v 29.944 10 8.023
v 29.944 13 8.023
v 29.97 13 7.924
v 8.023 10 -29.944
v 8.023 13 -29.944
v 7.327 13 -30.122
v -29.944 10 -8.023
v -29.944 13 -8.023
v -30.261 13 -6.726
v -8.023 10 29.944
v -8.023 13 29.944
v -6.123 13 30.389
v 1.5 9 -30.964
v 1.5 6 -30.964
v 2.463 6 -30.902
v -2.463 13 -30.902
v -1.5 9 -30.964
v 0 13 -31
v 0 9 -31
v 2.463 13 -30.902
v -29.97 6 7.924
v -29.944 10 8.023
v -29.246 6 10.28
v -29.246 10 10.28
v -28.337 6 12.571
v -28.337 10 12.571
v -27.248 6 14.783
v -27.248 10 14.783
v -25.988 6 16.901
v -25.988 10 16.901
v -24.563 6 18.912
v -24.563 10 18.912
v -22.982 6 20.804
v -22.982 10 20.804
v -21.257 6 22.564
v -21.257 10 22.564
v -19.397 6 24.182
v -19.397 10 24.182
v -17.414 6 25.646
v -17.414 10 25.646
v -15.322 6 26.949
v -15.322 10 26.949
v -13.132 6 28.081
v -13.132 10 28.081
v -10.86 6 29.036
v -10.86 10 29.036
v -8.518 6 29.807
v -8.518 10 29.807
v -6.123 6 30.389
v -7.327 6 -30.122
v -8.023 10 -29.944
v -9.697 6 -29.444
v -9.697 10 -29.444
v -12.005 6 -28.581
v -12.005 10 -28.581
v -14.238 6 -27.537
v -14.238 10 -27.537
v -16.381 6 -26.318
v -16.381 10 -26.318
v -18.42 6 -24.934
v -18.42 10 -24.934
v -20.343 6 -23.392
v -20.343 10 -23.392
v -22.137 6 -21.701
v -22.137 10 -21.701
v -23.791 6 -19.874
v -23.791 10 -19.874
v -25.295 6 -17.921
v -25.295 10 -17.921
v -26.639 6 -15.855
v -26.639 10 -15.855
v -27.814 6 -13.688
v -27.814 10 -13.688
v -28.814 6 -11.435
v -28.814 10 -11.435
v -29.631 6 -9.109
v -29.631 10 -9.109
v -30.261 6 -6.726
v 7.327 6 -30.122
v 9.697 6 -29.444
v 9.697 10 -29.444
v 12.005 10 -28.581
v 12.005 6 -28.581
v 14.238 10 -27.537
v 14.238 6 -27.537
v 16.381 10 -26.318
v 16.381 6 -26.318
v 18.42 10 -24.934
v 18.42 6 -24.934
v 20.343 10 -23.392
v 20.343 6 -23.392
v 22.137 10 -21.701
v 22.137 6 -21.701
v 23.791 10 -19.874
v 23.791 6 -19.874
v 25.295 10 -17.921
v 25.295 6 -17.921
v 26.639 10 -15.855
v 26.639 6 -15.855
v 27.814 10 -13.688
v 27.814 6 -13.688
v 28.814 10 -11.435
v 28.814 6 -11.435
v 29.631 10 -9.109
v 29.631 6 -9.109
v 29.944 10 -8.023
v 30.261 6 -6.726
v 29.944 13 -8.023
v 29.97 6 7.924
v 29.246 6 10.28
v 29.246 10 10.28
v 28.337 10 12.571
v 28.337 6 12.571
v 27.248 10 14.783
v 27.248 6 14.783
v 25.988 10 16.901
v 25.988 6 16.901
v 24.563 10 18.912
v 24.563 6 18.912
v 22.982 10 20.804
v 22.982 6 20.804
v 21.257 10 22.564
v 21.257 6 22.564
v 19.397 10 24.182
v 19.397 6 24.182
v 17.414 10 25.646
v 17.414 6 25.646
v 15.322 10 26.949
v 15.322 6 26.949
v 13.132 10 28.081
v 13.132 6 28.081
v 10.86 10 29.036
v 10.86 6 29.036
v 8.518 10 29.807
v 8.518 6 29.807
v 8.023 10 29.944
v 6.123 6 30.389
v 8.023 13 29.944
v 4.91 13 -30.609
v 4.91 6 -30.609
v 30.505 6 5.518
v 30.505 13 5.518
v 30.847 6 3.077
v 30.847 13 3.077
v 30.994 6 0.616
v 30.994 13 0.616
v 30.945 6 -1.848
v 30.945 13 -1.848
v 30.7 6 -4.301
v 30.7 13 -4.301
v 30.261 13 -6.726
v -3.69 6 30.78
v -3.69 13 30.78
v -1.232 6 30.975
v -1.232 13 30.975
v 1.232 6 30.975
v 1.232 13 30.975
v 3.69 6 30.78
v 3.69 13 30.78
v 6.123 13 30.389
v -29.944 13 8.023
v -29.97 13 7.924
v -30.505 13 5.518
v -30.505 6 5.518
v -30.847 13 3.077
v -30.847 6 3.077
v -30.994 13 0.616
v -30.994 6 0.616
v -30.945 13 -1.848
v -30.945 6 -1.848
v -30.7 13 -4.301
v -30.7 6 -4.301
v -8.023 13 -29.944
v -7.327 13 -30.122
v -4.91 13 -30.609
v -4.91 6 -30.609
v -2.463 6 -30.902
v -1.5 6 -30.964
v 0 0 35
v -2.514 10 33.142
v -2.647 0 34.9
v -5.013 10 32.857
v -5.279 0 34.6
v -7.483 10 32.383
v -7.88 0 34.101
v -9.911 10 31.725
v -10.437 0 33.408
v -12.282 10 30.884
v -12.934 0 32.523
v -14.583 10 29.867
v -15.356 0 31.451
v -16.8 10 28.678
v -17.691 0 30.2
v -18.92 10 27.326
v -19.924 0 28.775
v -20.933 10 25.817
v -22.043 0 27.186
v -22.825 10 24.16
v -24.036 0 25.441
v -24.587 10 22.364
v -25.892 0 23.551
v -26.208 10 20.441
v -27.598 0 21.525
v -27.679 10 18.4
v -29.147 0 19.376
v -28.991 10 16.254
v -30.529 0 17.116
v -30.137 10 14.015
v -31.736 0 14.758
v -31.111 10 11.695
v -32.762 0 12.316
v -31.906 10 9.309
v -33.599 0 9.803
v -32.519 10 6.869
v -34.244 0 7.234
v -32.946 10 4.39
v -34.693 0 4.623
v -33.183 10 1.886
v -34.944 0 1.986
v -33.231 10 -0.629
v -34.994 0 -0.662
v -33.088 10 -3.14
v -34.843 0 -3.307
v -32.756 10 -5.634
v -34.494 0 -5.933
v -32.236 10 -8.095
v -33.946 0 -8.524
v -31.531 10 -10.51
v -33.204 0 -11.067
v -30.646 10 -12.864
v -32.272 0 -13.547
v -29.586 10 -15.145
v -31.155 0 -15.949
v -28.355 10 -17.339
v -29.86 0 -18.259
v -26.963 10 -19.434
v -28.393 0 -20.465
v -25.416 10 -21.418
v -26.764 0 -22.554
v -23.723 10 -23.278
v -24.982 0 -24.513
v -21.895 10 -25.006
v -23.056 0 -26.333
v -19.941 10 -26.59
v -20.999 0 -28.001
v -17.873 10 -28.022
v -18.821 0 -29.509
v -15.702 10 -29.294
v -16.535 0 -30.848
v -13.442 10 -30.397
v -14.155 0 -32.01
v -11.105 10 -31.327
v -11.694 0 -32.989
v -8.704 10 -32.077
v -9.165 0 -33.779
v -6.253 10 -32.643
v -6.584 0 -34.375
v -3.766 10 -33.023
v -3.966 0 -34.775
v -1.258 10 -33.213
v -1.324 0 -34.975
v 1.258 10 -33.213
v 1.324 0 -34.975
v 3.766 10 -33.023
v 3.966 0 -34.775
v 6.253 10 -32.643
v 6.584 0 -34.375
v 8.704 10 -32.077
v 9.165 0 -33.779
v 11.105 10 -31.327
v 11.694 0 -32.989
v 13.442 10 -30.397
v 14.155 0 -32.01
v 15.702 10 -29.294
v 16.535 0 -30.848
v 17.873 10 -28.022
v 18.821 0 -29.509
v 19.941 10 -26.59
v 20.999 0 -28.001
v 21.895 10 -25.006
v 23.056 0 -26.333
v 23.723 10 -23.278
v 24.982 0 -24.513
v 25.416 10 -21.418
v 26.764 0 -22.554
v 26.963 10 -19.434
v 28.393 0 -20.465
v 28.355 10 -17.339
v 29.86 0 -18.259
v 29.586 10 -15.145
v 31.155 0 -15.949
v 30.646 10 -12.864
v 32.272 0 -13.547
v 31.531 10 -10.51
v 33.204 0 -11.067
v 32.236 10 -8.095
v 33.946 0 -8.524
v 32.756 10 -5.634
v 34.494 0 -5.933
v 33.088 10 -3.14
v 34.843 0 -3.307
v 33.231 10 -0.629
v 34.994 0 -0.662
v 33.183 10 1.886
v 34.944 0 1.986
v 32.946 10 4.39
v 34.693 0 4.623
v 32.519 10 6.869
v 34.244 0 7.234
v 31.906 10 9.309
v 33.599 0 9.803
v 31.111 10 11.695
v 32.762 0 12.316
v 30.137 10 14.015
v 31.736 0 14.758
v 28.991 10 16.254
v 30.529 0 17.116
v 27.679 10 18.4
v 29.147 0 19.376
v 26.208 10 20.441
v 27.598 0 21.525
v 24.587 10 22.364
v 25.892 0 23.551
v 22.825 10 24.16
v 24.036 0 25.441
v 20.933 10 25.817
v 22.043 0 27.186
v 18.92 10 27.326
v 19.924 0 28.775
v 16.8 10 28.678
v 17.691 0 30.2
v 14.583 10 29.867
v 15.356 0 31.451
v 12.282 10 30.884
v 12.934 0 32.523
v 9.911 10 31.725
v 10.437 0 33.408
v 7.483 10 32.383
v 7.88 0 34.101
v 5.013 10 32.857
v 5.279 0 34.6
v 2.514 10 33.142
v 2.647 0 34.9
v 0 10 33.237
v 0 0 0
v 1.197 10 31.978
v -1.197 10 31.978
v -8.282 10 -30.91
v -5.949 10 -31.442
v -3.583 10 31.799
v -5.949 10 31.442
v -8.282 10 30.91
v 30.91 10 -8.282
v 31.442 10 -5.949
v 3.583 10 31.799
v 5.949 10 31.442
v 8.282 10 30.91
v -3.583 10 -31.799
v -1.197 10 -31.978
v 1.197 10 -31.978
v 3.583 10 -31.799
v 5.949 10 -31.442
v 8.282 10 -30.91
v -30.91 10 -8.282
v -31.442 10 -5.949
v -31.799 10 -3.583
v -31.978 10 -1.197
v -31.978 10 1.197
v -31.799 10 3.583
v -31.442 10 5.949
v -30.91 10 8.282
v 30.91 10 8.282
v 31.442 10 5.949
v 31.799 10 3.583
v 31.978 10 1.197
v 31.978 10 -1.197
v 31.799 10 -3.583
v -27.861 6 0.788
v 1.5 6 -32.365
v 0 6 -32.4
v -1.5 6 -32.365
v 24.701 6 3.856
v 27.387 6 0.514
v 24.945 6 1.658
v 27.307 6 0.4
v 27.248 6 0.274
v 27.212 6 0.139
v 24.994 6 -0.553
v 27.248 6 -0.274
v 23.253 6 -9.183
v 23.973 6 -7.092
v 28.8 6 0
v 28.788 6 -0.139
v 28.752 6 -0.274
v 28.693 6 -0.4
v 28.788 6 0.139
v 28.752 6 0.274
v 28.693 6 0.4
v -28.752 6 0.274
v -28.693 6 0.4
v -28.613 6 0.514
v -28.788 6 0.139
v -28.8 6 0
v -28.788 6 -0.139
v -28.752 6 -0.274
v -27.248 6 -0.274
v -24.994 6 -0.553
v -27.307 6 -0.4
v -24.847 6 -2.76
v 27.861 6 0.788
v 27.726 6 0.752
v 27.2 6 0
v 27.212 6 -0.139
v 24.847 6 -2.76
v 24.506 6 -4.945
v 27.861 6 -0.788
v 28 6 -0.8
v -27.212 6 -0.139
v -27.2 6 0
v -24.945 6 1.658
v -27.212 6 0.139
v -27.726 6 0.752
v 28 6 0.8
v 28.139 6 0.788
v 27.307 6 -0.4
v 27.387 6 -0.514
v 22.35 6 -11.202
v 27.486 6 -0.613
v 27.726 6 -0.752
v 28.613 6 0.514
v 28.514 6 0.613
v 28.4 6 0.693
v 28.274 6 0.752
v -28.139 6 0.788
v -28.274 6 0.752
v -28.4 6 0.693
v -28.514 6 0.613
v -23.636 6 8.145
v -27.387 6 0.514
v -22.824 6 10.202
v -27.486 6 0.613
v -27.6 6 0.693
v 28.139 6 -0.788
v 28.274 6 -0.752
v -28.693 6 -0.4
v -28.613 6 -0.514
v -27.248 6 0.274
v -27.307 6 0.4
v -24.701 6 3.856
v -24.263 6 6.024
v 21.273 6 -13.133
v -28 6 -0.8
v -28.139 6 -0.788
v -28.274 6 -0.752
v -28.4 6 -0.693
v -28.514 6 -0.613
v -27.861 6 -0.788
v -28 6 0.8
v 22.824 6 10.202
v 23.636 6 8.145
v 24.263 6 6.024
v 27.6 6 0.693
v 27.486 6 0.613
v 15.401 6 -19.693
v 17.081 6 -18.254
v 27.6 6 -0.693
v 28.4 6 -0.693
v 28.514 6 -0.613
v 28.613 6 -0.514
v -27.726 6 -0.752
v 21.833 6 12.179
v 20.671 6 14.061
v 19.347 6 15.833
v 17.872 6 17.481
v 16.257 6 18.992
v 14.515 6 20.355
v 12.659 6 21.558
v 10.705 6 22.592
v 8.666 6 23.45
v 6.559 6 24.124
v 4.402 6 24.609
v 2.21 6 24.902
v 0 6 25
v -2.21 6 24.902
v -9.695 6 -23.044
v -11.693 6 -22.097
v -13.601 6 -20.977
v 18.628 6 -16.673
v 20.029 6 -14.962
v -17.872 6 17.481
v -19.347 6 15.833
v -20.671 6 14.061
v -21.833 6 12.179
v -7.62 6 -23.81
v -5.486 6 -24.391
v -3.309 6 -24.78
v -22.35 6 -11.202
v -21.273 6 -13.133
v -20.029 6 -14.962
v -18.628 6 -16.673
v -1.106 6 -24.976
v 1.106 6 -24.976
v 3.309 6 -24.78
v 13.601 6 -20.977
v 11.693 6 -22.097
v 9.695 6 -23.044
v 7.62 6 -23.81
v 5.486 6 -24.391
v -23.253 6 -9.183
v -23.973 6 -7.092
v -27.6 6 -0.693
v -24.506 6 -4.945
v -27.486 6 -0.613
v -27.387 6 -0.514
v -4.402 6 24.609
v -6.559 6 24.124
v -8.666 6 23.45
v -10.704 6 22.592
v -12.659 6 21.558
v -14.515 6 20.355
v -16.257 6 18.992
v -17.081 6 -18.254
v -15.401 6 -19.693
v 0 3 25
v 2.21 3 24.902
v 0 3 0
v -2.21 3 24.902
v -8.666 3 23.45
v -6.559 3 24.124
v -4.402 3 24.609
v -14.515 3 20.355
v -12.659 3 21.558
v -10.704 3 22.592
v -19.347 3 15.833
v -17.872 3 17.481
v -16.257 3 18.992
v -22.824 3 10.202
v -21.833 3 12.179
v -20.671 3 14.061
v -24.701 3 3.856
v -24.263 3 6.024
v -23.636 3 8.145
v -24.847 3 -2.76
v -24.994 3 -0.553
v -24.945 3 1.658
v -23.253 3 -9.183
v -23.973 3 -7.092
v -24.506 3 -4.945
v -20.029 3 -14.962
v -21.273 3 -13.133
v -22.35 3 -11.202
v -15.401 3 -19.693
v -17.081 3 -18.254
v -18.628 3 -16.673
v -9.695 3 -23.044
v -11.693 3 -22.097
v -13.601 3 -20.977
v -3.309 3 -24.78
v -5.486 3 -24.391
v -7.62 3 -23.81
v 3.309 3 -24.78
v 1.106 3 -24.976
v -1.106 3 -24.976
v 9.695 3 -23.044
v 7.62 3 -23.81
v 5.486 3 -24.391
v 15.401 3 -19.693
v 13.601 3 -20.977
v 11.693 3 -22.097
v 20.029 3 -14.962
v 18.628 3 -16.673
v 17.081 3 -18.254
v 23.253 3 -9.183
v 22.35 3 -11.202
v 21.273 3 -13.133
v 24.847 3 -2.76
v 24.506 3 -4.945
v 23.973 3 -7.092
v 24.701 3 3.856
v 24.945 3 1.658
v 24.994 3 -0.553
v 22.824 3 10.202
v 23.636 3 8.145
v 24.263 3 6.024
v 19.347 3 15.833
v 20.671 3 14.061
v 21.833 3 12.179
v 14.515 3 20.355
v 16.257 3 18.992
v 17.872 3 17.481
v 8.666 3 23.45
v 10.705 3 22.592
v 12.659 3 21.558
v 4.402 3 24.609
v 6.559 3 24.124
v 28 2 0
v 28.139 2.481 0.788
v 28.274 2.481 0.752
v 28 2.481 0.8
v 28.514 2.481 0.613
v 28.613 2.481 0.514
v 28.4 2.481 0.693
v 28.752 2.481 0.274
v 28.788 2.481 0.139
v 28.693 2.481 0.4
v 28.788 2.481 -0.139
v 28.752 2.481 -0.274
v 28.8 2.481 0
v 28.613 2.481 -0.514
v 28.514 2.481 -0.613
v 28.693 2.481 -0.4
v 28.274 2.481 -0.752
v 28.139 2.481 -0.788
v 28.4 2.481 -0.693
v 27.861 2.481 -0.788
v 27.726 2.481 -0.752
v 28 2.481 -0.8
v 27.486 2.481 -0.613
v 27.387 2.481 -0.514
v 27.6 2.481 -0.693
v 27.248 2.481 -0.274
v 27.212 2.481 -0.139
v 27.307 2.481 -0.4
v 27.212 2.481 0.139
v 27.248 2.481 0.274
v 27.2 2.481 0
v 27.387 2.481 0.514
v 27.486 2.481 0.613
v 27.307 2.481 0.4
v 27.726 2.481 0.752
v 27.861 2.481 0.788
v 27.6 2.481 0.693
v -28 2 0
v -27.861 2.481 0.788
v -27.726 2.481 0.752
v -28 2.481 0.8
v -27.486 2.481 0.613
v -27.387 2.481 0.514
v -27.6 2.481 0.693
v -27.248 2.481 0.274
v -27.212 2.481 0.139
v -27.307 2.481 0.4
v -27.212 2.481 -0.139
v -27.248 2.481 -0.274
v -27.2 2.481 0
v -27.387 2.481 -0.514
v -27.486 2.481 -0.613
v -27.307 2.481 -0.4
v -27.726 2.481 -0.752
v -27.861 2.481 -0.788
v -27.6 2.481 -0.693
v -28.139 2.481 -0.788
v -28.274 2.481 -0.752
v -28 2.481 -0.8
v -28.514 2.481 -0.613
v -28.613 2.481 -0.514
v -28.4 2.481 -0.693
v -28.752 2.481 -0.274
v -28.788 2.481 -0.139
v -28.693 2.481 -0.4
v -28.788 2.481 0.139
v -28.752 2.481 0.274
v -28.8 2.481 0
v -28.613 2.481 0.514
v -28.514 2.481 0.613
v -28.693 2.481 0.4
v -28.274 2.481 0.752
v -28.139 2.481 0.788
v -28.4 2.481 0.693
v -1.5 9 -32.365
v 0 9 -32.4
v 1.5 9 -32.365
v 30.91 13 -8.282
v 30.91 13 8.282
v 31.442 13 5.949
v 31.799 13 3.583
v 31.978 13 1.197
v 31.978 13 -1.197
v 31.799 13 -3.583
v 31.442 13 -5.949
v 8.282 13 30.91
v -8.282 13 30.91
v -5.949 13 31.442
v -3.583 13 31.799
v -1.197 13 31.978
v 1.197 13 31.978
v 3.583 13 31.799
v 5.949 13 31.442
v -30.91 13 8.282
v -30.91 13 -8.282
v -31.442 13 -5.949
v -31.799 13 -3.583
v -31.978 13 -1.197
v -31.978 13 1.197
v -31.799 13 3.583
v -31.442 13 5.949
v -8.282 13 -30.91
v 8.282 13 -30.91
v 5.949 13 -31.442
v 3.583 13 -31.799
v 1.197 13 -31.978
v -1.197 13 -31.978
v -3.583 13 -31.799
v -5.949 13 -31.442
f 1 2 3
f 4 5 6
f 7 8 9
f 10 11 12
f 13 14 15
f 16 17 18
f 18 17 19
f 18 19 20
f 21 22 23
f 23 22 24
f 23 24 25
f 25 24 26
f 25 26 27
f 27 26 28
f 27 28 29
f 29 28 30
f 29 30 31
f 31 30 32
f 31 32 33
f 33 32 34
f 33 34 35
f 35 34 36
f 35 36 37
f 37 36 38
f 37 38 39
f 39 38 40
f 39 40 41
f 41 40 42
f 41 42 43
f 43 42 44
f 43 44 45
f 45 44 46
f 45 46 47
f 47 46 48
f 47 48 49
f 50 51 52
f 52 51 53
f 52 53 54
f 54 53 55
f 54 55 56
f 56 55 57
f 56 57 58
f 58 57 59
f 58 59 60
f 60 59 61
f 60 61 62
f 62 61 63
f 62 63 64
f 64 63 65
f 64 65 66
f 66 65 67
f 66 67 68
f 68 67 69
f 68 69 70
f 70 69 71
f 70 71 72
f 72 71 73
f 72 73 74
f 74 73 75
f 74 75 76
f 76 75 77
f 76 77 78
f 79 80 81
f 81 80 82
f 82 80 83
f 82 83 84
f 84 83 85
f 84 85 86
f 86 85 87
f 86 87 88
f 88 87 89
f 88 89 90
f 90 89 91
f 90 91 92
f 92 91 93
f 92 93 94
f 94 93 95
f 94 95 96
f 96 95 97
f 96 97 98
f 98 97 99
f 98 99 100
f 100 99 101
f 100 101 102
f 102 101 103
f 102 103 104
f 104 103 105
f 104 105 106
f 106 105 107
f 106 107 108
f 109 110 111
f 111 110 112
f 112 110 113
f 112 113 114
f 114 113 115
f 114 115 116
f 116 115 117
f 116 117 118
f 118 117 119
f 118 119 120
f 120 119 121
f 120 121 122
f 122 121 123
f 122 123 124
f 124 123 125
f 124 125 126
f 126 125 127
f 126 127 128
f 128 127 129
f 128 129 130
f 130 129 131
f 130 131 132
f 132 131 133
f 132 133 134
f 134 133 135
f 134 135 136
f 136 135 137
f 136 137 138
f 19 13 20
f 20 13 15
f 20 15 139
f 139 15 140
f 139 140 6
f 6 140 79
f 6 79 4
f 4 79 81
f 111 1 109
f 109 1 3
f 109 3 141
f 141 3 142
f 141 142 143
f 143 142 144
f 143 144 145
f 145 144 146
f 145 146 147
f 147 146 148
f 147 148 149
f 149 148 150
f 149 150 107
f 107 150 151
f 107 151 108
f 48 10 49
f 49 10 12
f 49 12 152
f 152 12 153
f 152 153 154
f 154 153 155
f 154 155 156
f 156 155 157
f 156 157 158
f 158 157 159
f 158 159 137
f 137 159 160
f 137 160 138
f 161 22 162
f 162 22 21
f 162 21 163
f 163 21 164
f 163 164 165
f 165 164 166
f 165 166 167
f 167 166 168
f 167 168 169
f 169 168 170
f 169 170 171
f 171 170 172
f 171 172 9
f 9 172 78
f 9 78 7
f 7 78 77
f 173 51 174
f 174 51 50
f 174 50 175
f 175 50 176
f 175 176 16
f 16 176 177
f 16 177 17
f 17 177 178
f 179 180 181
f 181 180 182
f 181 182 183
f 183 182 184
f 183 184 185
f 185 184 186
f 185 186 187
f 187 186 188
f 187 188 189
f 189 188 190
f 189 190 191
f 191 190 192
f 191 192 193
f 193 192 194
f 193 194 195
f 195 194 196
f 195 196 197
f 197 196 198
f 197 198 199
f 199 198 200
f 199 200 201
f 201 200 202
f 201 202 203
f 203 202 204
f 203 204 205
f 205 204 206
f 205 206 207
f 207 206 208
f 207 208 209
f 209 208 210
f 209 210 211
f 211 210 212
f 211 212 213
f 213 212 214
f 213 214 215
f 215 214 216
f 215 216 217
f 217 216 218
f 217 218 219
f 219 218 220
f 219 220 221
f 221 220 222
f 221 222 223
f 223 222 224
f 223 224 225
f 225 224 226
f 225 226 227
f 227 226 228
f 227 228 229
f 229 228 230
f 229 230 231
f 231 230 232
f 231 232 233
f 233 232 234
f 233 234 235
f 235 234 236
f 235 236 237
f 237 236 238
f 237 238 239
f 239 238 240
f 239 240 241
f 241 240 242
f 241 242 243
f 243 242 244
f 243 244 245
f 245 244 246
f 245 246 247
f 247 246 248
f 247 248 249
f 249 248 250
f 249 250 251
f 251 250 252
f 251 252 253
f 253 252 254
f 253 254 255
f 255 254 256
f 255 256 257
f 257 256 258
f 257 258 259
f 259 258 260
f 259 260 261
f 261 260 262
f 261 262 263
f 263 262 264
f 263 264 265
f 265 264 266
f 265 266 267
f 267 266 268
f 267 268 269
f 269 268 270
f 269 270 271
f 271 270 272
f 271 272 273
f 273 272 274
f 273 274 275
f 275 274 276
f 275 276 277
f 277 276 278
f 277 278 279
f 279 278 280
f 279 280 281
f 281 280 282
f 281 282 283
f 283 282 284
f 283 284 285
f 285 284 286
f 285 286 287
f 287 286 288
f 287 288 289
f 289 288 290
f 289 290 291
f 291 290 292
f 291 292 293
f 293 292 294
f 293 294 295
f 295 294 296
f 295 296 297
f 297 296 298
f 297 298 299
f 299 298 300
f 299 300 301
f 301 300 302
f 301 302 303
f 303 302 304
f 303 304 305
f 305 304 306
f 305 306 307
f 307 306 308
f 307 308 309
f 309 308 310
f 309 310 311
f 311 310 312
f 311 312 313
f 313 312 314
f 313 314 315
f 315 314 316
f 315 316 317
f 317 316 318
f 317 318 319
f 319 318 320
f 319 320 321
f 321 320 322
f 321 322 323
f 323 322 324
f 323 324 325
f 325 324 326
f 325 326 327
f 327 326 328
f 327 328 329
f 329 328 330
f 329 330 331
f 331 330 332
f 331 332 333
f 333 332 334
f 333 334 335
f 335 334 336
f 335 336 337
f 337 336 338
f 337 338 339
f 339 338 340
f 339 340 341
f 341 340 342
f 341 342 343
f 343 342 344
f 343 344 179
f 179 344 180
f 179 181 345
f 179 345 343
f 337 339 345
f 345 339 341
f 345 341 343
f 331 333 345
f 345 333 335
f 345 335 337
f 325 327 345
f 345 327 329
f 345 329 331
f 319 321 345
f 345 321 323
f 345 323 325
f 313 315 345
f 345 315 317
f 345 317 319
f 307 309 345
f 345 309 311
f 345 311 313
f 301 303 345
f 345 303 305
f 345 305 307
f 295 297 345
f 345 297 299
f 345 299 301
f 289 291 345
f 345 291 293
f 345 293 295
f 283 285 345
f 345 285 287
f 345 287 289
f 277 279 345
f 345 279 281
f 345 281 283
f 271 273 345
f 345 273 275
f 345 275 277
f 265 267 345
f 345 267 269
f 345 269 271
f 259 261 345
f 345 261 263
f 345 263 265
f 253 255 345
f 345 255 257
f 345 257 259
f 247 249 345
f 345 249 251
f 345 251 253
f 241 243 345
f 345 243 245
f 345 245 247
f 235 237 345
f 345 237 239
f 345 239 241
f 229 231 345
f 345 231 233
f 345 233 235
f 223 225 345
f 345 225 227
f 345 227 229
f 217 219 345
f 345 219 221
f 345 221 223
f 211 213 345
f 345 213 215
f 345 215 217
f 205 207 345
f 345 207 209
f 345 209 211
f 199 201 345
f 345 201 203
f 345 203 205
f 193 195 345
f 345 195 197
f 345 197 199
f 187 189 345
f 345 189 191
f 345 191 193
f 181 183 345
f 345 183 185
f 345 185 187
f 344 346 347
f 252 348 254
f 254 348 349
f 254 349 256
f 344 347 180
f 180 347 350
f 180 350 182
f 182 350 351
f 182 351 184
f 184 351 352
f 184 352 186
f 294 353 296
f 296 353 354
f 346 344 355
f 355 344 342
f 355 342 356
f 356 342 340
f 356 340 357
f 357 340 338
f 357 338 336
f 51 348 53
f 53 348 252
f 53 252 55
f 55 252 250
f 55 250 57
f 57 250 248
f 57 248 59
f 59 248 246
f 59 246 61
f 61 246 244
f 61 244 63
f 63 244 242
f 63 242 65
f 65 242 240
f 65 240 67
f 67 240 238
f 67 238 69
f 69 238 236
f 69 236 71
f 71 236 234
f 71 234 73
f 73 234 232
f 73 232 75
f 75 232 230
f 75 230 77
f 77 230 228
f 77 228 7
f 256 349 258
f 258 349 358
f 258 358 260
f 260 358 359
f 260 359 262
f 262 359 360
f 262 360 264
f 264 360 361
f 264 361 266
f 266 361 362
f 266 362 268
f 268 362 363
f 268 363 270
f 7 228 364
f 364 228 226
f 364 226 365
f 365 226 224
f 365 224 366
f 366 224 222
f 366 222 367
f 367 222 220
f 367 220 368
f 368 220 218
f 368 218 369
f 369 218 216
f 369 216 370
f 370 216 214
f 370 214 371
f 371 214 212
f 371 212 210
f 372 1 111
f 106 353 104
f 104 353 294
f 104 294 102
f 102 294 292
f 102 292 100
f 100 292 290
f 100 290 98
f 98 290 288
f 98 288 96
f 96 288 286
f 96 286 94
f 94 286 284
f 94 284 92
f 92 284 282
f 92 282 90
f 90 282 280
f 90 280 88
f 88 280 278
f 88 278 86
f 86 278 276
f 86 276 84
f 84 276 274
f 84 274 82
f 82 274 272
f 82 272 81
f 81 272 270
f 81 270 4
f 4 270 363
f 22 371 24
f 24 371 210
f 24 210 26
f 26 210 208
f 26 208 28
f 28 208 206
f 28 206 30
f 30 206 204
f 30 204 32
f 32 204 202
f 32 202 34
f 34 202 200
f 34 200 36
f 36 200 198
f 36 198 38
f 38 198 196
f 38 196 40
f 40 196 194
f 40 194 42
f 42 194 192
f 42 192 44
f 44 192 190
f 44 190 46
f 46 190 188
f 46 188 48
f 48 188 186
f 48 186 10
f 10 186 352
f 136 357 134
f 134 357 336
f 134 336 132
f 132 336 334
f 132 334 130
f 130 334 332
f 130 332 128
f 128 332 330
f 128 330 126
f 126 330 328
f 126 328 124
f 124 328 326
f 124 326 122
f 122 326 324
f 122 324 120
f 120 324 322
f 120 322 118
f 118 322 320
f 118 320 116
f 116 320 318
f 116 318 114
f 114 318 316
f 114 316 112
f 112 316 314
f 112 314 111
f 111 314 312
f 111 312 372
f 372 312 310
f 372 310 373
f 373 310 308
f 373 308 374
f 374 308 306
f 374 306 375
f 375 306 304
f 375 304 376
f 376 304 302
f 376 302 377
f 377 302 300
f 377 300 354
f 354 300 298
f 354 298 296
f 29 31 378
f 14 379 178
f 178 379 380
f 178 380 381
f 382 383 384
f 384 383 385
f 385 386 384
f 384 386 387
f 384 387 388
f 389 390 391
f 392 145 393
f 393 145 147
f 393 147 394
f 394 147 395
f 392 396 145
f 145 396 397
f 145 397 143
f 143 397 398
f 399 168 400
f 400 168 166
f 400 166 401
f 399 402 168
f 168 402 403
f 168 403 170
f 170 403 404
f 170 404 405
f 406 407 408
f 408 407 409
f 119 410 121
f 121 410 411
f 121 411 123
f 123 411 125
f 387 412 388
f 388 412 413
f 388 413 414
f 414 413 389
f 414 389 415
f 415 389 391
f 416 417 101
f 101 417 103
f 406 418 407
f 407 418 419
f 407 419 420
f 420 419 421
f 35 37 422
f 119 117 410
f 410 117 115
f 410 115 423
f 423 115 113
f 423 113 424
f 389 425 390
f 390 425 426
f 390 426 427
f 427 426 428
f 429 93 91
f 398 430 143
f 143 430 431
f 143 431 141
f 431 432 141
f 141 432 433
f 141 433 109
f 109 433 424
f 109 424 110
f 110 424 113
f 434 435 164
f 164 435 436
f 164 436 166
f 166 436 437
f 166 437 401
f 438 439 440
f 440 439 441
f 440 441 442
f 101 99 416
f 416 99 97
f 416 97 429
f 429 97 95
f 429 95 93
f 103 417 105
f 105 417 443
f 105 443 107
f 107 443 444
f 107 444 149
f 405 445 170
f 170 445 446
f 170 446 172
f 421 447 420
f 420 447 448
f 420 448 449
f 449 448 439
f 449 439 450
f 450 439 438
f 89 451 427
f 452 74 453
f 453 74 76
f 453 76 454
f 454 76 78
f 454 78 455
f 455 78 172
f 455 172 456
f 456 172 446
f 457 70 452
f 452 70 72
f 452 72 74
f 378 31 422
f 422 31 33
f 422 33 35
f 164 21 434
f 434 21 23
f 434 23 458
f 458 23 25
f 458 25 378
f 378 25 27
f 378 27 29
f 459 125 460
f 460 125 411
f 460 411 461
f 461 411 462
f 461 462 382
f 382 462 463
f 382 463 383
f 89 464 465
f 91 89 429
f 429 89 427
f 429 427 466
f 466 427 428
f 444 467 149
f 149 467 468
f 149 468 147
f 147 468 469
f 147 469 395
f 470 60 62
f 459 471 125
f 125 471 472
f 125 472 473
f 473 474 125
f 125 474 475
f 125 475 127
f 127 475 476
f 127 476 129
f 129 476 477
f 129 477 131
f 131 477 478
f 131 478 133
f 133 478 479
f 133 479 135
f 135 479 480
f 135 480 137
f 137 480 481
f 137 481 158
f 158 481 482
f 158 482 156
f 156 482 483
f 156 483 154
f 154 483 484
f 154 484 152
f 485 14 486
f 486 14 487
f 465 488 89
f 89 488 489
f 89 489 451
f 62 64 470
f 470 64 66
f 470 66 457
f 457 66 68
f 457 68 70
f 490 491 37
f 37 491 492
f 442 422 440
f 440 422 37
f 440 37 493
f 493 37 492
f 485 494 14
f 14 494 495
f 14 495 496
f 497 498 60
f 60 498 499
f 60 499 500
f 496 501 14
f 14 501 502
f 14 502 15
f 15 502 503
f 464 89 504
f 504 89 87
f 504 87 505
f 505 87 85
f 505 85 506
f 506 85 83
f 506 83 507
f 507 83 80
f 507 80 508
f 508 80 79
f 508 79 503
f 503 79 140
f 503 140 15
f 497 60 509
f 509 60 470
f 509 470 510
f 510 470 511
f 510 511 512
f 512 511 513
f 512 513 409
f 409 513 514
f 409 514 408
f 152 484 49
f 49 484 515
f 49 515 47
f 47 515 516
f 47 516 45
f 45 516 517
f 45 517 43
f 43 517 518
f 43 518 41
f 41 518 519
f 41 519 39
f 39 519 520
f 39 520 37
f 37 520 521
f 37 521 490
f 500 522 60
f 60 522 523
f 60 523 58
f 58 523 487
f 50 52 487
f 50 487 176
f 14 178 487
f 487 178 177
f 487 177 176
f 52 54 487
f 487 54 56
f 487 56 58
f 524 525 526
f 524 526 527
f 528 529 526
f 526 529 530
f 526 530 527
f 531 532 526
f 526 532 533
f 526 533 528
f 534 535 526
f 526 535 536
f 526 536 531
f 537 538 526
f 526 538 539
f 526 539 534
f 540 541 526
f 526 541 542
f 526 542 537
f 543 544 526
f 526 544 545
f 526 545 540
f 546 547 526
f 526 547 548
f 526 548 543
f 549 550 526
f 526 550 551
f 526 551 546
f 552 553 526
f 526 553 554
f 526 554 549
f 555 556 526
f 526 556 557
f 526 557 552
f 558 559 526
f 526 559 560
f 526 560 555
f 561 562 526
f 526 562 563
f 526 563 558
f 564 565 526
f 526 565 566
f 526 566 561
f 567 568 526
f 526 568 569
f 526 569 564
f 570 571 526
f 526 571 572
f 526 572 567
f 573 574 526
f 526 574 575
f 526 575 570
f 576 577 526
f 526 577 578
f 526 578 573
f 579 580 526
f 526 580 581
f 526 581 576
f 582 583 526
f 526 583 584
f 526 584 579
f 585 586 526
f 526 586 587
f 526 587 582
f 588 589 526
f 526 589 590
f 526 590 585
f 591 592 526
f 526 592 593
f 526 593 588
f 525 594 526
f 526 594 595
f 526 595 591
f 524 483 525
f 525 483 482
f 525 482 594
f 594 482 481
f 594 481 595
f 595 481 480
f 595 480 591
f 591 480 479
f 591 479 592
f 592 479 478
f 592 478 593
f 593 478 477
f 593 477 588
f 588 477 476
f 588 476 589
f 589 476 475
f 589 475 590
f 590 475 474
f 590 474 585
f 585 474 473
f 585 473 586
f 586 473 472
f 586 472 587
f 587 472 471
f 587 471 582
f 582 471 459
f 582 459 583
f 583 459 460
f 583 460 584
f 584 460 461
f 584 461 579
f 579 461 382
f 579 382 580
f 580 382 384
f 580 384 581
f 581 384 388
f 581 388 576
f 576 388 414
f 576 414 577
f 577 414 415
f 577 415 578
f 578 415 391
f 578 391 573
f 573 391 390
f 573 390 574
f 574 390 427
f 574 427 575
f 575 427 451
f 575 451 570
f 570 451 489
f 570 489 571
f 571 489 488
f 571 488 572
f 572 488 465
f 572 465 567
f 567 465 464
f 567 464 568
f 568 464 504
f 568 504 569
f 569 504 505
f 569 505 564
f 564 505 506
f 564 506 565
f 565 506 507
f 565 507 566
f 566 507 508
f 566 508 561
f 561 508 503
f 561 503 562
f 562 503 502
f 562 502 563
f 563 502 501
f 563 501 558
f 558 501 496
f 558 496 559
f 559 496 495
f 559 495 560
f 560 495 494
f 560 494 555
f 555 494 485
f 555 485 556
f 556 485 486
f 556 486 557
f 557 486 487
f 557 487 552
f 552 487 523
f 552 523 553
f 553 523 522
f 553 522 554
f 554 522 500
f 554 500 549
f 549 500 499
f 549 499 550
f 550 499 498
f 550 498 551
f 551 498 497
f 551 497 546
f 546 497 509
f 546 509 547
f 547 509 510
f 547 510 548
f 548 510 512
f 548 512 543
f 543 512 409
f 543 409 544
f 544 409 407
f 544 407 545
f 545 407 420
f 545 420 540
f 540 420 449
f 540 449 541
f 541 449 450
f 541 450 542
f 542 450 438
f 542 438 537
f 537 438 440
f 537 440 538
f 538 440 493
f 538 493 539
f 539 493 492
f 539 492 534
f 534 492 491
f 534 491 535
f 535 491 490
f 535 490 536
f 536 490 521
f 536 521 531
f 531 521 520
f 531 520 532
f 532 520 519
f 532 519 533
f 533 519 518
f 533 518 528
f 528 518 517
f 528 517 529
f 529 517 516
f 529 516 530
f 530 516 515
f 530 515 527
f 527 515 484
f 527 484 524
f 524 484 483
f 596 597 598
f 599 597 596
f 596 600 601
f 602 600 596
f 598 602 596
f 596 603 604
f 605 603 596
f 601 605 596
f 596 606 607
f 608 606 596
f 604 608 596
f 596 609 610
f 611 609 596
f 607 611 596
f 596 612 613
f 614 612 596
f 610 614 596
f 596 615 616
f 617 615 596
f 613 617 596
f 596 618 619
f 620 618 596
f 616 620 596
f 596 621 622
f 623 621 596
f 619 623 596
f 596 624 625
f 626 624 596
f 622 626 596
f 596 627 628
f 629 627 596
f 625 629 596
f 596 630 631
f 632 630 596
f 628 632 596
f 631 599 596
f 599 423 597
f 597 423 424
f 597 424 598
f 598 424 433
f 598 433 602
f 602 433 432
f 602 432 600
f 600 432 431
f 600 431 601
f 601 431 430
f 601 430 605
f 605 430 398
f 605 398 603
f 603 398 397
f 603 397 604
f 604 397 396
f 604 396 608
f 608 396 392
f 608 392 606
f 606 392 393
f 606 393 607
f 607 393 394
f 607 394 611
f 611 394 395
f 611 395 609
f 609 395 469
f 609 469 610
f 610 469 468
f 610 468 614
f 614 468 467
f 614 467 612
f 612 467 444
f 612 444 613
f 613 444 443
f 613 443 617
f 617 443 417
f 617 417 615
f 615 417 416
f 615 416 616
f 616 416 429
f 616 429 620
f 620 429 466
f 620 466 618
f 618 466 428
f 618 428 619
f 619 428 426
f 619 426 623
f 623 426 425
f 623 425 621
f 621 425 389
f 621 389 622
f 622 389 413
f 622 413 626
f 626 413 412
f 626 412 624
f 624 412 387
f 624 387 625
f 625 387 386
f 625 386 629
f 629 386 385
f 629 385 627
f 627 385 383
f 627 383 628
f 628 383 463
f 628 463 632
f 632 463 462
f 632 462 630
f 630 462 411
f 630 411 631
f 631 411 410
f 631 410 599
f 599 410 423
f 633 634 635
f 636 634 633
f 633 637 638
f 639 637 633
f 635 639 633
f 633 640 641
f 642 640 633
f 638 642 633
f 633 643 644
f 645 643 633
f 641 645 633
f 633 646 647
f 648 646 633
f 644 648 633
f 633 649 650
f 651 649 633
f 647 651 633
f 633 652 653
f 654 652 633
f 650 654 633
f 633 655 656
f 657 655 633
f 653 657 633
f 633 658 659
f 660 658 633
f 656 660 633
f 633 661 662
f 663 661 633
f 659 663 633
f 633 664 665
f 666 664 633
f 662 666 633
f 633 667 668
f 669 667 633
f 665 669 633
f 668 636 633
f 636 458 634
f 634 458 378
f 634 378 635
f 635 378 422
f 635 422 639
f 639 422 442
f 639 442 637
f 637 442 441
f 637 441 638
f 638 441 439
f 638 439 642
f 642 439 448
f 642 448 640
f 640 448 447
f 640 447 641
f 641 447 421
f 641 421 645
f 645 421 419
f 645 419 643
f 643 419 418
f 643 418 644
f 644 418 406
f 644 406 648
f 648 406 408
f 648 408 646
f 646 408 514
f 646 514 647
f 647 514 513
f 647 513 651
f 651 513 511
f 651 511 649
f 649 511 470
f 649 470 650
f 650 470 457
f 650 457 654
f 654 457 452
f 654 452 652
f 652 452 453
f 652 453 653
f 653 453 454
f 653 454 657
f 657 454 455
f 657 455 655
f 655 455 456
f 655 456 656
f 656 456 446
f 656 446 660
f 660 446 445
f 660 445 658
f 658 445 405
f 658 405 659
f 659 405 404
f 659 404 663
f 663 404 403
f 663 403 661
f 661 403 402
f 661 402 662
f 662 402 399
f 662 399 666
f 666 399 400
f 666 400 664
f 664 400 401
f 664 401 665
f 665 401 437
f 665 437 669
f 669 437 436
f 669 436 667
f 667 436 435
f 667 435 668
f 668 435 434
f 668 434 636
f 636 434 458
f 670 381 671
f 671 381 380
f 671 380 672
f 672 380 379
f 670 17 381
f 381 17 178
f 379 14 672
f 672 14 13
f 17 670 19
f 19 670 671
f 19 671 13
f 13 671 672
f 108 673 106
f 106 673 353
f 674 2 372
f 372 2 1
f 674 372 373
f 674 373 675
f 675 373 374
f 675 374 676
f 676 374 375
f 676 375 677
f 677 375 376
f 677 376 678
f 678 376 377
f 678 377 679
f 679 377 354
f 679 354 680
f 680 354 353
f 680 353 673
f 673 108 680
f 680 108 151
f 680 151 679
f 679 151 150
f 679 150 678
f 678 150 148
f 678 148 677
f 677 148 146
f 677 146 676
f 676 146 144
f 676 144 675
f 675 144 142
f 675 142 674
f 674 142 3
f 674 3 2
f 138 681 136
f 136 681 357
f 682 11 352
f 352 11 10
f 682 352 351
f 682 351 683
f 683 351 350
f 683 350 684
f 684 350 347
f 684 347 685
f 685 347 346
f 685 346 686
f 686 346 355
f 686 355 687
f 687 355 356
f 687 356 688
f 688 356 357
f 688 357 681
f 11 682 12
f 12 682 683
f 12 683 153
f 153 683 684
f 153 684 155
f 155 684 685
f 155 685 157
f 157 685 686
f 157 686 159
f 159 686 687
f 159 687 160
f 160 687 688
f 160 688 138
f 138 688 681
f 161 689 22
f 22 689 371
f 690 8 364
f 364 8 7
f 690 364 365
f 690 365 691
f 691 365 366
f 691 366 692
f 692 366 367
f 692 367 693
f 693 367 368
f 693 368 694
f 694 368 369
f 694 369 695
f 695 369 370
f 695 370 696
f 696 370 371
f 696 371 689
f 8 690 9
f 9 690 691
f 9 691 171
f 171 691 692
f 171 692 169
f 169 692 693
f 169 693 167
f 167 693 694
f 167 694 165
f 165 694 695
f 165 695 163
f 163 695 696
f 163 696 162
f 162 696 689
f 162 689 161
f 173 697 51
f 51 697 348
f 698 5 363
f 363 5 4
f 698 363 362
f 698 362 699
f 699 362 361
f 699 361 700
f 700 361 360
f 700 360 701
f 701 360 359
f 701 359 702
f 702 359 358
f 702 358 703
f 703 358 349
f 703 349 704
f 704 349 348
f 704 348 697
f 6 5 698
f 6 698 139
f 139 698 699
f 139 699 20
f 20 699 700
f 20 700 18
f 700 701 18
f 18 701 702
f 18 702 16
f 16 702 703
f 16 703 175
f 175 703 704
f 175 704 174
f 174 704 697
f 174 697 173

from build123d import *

# Parameters (mm, degrees)
SKETCH_1_R             = 35
EXTRUDE_1_DEPTH        = 6
EXTRUDE_1_TAPER        = 10
SKETCH_4_R             = 25
CUT_EXTRUDE_1_DEPTH    = 3
HOLE_WIZARD_M2_9_D     = 1.6
HOLE_WIZARD_M2_9_DEPTH = 3.519311505
HOLE_WIZARD_M2_9_TIP   = 0.480688495
SKETCH_21_R            = 33.942038116
EXTRUDE_2_DEPTH        = 4
EXTRUDE_2_TAPER        = 10
SKETCH_22_R            = 31
CUT_EXTRUDE_2_DEPTH    = 50.859803602
CUT_EXTRUDE_3_DEPTH    = 3
EXTRUDE_4_DEPTH        = 3


with BuildPart() as part:
    # 草图1 → 凸台-拉伸1 (new body)
    with BuildSketch(Plane(origin=(0, 0, 0), x_dir=(1, 0, 0), z_dir=(0, 1, 0))):
        Circle(SKETCH_1_R)
    extrude(amount=EXTRUDE_1_DEPTH, taper=EXTRUDE_1_TAPER)

    # 草图4 → 切除-拉伸1 (cut)
    with BuildSketch(Plane(origin=(0, 6, 0), x_dir=(1, 0, 0), z_dir=(0, 1, 0))):
        Circle(SKETCH_4_R)
    extrude(amount=-CUT_EXTRUDE_1_DEPTH, mode=Mode.SUBTRACT)

    # M2 螺纹孔9
    with Locations(Plane(origin=(0, 6, 0), x_dir=(1, 0, 0), z_dir=(0, 1, 0))):
        with Locations((-28, 0), (28, 0)):
            Hole(HOLE_WIZARD_M2_9_D / 2, depth=HOLE_WIZARD_M2_9_DEPTH)
            with Locations((0, 0, -(HOLE_WIZARD_M2_9_DEPTH + HOLE_WIZARD_M2_9_TIP / 2))):  # 118° drill point
                Cone(0, HOLE_WIZARD_M2_9_D / 2, HOLE_WIZARD_M2_9_TIP, mode=Mode.SUBTRACT)

    # 草图21 → 凸台-拉伸2 (add)
    with BuildSketch(Plane(origin=(0, 6, 0), x_dir=(1, 0, 0), z_dir=(0, 1, 0))):
        Circle(SKETCH_21_R)
    extrude(amount=EXTRUDE_2_DEPTH, taper=EXTRUDE_2_TAPER)

    # 草图22 → 切除-拉伸2 (cut, through all)
    with BuildSketch(Plane(origin=(0, 6, 0), x_dir=(1, 0, 0), z_dir=(0, 1, 0))):
        Circle(SKETCH_22_R)
    extrude(amount=CUT_EXTRUDE_2_DEPTH, mode=Mode.SUBTRACT)

    # 草图23 → 切除-拉伸3 (cut)
    with BuildSketch(Plane(origin=(0, 6, 0), x_dir=(1, 0, 0), z_dir=(0, 1, 0))):
        with BuildLine():
            Line((-1.5, 32.365259152), (-1.5, 30.542622152))
            Line((-1.5, 30.542622152), (1.5, 30.542622152))
            Line((1.5, 30.542622152), (1.5, 32.365259152))
            ThreePointArc((1.5, 32.365259152), (0, 32.4), (-1.5, 32.365259152))
        make_face()
    extrude(amount=CUT_EXTRUDE_3_DEPTH, mode=Mode.SUBTRACT)

    # 草图31 → 凸台-拉伸4 (add)
    with BuildSketch(Plane(origin=(0, 10, 0), x_dir=(1, 0, 0), z_dir=(0, 1, 0))):
        with BuildLine():
            Line((-8.282209443, 30.909626441), (-8.023390398, 29.943700615))
            ThreePointArc((-8.023390398, 29.943700615), (0, 31), (8.023390398, 29.943700615))
            Line((8.023390398, 29.943700615), (8.282209443, 30.909626441))
            ThreePointArc((8.282209443, 30.909626441), (0, 32), (-8.282209443, 30.909626441))
        make_face()
        with BuildLine():
            Line((30.909626441, -8.282209443), (29.943700615, -8.023390398))
            ThreePointArc((29.943700615, -8.023390398), (31, 0), (29.943700615, 8.023390398))
            Line((29.943700615, 8.023390398), (30.909626441, 8.282209443))
            ThreePointArc((30.909626441, 8.282209443), (32, 0), (30.909626441, -8.282209443))
        make_face()
        with BuildLine():
            Line((-8.282209443, -30.909626441), (-8.023390398, -29.943700615))
            ThreePointArc((-8.023390398, -29.943700615), (0, -31), (8.023390398, -29.943700615))
            Line((8.023390398, -29.943700615), (8.282209443, -30.909626441))
            ThreePointArc((8.282209443, -30.909626441), (0, -32), (-8.282209443, -30.909626441))
        make_face()
        with BuildLine():
            Line((-30.909626441, 8.282209443), (-29.943700615, 8.023390398))
            ThreePointArc((-29.943700615, 8.023390398), (-31, 0), (-29.943700615, -8.023390398))
            Line((-29.943700615, -8.023390398), (-30.909626441, -8.282209443))
            ThreePointArc((-30.909626441, -8.282209443), (-32, 0), (-30.909626441, 8.282209443))
        make_face()
    extrude(amount=EXTRUDE_4_DEPTH)


solid = part.part
